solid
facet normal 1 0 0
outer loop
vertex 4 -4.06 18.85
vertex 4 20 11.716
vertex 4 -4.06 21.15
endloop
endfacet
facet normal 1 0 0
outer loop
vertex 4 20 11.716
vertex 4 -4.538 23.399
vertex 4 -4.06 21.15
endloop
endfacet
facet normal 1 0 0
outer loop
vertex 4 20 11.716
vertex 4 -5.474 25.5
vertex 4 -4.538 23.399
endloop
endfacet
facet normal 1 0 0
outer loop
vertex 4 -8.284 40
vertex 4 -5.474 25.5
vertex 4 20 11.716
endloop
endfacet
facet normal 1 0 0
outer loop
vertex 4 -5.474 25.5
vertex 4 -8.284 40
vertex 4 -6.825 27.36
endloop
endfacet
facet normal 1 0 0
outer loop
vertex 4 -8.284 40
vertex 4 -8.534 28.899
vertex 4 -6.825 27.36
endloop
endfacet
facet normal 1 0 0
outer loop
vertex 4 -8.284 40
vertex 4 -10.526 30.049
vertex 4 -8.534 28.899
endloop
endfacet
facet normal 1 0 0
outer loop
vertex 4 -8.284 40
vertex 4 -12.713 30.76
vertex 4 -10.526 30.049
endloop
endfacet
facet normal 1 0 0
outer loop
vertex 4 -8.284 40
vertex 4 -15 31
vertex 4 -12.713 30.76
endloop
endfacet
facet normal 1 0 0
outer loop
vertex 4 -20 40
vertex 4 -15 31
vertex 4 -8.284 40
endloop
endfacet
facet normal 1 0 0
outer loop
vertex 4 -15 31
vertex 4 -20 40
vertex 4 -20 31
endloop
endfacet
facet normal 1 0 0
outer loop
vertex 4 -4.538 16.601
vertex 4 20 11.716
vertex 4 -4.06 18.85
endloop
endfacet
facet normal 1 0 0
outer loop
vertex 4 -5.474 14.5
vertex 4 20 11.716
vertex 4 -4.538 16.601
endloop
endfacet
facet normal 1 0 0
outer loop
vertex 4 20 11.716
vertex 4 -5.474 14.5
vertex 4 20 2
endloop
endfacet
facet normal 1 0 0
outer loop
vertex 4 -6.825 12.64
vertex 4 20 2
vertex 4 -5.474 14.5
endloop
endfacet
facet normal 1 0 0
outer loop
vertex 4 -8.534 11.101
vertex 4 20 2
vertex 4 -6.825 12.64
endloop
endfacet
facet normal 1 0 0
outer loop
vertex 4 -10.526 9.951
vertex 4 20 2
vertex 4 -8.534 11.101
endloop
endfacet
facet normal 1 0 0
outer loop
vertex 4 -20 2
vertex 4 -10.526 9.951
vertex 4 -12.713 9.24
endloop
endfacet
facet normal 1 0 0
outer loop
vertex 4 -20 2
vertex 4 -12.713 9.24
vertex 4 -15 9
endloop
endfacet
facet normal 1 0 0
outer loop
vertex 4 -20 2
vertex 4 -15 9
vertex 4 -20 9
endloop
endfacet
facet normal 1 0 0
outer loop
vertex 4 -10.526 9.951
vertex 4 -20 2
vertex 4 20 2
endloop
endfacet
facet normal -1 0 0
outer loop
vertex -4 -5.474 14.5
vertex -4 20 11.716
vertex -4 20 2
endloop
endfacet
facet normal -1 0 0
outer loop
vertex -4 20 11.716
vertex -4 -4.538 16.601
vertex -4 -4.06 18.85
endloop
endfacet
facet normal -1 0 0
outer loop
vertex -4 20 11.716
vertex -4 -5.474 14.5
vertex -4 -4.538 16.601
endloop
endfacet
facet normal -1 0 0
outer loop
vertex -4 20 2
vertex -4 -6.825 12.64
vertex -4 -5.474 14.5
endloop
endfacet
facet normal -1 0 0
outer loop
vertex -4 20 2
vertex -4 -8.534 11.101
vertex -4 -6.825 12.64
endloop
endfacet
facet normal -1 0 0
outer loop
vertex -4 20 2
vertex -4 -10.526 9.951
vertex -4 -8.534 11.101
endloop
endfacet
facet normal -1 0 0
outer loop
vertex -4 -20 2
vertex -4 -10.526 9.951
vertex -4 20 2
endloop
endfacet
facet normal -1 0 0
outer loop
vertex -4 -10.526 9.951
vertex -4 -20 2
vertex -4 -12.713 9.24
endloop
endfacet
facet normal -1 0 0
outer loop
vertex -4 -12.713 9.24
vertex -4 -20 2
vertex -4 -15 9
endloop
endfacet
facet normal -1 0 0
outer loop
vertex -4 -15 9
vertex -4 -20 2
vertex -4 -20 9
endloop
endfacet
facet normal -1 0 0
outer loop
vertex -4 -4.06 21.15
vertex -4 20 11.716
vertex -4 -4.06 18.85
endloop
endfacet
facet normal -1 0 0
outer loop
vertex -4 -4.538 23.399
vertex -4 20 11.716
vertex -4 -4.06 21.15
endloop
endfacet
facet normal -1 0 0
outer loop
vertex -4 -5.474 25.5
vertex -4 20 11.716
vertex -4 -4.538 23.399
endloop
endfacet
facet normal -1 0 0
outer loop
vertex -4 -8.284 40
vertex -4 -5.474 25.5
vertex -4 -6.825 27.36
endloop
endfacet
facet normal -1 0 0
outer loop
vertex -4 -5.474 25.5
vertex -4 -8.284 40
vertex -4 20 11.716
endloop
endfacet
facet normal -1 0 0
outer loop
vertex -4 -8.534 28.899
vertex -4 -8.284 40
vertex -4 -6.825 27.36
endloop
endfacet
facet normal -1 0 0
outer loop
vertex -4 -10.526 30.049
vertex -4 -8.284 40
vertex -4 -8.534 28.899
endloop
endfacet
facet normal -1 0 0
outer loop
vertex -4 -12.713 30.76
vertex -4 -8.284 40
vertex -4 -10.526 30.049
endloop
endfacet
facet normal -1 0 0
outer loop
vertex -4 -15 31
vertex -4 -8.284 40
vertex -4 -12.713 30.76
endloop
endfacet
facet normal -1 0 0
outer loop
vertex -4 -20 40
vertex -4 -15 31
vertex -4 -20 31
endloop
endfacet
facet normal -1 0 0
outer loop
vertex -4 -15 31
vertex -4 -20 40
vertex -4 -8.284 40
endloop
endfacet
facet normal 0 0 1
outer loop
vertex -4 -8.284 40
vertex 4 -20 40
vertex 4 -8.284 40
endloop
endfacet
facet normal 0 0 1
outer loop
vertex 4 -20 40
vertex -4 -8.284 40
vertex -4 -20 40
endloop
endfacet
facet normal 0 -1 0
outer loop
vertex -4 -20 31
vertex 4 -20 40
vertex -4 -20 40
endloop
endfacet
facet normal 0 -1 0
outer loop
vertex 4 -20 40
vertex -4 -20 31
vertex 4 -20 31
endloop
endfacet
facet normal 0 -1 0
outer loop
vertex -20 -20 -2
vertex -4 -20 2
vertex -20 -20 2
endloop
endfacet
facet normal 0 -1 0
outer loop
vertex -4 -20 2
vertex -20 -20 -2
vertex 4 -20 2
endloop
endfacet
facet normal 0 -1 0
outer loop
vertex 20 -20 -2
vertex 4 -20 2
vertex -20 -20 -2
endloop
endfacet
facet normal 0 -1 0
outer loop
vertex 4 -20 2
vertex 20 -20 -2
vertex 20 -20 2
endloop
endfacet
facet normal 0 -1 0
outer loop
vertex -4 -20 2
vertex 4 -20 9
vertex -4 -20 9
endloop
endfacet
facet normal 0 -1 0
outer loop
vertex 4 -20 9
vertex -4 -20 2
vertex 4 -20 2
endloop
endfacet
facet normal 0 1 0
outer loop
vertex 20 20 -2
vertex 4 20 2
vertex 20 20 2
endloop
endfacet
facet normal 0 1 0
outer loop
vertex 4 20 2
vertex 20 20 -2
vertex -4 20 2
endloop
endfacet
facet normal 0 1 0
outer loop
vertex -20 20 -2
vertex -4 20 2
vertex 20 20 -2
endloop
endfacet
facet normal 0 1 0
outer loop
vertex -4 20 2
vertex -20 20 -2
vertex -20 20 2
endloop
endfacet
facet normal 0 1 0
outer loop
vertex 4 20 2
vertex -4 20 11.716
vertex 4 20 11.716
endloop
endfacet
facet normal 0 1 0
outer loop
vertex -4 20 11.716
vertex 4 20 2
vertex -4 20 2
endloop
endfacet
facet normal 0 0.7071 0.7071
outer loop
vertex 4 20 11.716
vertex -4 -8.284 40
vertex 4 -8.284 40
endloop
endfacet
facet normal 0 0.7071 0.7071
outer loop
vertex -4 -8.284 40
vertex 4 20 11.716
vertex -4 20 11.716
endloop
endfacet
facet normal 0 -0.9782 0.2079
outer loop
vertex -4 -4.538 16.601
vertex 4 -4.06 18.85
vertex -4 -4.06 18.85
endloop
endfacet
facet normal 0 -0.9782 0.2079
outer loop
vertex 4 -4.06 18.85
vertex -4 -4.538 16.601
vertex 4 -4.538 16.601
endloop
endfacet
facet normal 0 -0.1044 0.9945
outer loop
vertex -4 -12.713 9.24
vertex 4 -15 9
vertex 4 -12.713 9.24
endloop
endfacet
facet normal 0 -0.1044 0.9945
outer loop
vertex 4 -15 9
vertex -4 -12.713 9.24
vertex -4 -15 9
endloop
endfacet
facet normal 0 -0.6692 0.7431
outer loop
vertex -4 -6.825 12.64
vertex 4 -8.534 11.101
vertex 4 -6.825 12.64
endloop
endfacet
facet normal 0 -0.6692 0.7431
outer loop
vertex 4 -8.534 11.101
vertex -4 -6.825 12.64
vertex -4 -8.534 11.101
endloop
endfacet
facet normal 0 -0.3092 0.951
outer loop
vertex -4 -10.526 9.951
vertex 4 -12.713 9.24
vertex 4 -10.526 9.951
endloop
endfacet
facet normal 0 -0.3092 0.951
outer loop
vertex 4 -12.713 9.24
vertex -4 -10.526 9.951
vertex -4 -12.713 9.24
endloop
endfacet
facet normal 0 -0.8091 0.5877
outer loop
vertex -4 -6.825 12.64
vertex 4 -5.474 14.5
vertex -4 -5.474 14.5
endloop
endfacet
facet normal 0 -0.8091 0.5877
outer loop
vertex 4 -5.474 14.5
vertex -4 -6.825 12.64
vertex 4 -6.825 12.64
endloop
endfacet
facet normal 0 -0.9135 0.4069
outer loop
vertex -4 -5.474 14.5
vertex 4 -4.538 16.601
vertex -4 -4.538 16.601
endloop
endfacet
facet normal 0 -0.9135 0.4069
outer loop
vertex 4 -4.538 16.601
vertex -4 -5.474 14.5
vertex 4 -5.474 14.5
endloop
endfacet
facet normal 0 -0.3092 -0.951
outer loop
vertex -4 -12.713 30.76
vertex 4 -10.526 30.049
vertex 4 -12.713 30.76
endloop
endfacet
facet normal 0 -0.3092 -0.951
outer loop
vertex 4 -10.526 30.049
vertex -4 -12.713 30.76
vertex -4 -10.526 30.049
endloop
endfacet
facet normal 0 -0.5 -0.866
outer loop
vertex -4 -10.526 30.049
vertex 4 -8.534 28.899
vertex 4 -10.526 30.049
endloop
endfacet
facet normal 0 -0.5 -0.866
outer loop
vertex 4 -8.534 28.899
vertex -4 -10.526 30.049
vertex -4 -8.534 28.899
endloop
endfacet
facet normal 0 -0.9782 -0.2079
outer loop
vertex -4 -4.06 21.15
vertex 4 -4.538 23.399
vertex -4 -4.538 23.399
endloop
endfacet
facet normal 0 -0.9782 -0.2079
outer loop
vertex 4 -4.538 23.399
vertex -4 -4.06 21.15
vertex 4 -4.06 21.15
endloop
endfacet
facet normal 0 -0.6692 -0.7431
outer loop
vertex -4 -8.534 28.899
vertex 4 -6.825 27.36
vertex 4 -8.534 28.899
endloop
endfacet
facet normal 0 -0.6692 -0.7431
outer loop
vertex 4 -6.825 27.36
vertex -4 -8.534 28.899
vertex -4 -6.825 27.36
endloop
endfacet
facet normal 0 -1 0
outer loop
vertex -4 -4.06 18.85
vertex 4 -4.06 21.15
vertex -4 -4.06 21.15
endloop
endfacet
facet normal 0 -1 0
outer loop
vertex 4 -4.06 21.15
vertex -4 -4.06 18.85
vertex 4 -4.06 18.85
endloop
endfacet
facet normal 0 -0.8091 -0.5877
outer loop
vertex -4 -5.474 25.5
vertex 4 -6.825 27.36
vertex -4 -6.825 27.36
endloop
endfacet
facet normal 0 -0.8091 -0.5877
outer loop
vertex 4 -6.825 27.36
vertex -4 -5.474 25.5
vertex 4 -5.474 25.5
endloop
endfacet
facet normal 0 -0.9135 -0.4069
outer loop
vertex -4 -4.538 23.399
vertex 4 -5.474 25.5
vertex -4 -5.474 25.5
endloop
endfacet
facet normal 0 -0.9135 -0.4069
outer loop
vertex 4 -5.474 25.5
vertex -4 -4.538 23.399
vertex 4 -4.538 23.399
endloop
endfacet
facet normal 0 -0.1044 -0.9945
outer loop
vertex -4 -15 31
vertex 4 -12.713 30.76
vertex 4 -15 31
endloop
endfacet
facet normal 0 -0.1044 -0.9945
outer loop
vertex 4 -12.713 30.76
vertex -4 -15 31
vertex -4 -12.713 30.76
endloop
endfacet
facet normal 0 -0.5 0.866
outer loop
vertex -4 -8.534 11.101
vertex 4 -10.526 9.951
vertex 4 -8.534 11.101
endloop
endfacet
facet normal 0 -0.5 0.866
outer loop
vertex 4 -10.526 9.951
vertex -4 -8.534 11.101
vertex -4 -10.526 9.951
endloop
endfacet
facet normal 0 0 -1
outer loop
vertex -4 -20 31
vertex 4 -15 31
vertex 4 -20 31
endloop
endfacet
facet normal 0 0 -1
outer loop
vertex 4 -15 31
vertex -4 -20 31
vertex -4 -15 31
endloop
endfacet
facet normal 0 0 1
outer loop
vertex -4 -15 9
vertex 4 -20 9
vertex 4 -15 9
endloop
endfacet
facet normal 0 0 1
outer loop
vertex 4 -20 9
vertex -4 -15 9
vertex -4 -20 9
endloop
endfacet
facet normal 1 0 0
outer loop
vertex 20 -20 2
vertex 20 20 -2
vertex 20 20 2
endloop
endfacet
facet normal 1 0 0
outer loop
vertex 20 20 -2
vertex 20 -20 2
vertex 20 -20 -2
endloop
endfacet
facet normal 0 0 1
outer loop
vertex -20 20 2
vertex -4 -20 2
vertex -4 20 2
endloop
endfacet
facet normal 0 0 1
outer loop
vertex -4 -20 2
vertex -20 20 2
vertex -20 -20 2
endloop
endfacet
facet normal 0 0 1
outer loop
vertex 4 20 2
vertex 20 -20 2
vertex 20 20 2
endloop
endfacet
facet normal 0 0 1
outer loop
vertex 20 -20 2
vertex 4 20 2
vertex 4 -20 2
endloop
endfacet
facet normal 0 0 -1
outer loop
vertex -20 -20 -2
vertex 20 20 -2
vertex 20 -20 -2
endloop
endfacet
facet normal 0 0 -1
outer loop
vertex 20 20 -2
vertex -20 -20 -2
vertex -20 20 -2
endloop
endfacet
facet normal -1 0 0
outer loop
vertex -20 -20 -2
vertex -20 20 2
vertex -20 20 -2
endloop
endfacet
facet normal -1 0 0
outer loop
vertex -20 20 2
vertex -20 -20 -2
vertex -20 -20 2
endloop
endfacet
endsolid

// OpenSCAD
cube([40,40,4], center = true);

translate([0, 0, 20]) {    
    difference() {
        rotate([0, 90, 0])
        cube([40, 40, 8], center = true);
        
        translate([0, 20, 20])
        rotate([45, 0, 0])
        cube([40,40,40], center = true);

        translate([0, -15, 0])
        rotate([0, 90, 0])
        cylinder(d = 22, h=10, center=true);
        translate([0, -25, 0])
        cube([20, 20, 22], center = true);
    }
}
